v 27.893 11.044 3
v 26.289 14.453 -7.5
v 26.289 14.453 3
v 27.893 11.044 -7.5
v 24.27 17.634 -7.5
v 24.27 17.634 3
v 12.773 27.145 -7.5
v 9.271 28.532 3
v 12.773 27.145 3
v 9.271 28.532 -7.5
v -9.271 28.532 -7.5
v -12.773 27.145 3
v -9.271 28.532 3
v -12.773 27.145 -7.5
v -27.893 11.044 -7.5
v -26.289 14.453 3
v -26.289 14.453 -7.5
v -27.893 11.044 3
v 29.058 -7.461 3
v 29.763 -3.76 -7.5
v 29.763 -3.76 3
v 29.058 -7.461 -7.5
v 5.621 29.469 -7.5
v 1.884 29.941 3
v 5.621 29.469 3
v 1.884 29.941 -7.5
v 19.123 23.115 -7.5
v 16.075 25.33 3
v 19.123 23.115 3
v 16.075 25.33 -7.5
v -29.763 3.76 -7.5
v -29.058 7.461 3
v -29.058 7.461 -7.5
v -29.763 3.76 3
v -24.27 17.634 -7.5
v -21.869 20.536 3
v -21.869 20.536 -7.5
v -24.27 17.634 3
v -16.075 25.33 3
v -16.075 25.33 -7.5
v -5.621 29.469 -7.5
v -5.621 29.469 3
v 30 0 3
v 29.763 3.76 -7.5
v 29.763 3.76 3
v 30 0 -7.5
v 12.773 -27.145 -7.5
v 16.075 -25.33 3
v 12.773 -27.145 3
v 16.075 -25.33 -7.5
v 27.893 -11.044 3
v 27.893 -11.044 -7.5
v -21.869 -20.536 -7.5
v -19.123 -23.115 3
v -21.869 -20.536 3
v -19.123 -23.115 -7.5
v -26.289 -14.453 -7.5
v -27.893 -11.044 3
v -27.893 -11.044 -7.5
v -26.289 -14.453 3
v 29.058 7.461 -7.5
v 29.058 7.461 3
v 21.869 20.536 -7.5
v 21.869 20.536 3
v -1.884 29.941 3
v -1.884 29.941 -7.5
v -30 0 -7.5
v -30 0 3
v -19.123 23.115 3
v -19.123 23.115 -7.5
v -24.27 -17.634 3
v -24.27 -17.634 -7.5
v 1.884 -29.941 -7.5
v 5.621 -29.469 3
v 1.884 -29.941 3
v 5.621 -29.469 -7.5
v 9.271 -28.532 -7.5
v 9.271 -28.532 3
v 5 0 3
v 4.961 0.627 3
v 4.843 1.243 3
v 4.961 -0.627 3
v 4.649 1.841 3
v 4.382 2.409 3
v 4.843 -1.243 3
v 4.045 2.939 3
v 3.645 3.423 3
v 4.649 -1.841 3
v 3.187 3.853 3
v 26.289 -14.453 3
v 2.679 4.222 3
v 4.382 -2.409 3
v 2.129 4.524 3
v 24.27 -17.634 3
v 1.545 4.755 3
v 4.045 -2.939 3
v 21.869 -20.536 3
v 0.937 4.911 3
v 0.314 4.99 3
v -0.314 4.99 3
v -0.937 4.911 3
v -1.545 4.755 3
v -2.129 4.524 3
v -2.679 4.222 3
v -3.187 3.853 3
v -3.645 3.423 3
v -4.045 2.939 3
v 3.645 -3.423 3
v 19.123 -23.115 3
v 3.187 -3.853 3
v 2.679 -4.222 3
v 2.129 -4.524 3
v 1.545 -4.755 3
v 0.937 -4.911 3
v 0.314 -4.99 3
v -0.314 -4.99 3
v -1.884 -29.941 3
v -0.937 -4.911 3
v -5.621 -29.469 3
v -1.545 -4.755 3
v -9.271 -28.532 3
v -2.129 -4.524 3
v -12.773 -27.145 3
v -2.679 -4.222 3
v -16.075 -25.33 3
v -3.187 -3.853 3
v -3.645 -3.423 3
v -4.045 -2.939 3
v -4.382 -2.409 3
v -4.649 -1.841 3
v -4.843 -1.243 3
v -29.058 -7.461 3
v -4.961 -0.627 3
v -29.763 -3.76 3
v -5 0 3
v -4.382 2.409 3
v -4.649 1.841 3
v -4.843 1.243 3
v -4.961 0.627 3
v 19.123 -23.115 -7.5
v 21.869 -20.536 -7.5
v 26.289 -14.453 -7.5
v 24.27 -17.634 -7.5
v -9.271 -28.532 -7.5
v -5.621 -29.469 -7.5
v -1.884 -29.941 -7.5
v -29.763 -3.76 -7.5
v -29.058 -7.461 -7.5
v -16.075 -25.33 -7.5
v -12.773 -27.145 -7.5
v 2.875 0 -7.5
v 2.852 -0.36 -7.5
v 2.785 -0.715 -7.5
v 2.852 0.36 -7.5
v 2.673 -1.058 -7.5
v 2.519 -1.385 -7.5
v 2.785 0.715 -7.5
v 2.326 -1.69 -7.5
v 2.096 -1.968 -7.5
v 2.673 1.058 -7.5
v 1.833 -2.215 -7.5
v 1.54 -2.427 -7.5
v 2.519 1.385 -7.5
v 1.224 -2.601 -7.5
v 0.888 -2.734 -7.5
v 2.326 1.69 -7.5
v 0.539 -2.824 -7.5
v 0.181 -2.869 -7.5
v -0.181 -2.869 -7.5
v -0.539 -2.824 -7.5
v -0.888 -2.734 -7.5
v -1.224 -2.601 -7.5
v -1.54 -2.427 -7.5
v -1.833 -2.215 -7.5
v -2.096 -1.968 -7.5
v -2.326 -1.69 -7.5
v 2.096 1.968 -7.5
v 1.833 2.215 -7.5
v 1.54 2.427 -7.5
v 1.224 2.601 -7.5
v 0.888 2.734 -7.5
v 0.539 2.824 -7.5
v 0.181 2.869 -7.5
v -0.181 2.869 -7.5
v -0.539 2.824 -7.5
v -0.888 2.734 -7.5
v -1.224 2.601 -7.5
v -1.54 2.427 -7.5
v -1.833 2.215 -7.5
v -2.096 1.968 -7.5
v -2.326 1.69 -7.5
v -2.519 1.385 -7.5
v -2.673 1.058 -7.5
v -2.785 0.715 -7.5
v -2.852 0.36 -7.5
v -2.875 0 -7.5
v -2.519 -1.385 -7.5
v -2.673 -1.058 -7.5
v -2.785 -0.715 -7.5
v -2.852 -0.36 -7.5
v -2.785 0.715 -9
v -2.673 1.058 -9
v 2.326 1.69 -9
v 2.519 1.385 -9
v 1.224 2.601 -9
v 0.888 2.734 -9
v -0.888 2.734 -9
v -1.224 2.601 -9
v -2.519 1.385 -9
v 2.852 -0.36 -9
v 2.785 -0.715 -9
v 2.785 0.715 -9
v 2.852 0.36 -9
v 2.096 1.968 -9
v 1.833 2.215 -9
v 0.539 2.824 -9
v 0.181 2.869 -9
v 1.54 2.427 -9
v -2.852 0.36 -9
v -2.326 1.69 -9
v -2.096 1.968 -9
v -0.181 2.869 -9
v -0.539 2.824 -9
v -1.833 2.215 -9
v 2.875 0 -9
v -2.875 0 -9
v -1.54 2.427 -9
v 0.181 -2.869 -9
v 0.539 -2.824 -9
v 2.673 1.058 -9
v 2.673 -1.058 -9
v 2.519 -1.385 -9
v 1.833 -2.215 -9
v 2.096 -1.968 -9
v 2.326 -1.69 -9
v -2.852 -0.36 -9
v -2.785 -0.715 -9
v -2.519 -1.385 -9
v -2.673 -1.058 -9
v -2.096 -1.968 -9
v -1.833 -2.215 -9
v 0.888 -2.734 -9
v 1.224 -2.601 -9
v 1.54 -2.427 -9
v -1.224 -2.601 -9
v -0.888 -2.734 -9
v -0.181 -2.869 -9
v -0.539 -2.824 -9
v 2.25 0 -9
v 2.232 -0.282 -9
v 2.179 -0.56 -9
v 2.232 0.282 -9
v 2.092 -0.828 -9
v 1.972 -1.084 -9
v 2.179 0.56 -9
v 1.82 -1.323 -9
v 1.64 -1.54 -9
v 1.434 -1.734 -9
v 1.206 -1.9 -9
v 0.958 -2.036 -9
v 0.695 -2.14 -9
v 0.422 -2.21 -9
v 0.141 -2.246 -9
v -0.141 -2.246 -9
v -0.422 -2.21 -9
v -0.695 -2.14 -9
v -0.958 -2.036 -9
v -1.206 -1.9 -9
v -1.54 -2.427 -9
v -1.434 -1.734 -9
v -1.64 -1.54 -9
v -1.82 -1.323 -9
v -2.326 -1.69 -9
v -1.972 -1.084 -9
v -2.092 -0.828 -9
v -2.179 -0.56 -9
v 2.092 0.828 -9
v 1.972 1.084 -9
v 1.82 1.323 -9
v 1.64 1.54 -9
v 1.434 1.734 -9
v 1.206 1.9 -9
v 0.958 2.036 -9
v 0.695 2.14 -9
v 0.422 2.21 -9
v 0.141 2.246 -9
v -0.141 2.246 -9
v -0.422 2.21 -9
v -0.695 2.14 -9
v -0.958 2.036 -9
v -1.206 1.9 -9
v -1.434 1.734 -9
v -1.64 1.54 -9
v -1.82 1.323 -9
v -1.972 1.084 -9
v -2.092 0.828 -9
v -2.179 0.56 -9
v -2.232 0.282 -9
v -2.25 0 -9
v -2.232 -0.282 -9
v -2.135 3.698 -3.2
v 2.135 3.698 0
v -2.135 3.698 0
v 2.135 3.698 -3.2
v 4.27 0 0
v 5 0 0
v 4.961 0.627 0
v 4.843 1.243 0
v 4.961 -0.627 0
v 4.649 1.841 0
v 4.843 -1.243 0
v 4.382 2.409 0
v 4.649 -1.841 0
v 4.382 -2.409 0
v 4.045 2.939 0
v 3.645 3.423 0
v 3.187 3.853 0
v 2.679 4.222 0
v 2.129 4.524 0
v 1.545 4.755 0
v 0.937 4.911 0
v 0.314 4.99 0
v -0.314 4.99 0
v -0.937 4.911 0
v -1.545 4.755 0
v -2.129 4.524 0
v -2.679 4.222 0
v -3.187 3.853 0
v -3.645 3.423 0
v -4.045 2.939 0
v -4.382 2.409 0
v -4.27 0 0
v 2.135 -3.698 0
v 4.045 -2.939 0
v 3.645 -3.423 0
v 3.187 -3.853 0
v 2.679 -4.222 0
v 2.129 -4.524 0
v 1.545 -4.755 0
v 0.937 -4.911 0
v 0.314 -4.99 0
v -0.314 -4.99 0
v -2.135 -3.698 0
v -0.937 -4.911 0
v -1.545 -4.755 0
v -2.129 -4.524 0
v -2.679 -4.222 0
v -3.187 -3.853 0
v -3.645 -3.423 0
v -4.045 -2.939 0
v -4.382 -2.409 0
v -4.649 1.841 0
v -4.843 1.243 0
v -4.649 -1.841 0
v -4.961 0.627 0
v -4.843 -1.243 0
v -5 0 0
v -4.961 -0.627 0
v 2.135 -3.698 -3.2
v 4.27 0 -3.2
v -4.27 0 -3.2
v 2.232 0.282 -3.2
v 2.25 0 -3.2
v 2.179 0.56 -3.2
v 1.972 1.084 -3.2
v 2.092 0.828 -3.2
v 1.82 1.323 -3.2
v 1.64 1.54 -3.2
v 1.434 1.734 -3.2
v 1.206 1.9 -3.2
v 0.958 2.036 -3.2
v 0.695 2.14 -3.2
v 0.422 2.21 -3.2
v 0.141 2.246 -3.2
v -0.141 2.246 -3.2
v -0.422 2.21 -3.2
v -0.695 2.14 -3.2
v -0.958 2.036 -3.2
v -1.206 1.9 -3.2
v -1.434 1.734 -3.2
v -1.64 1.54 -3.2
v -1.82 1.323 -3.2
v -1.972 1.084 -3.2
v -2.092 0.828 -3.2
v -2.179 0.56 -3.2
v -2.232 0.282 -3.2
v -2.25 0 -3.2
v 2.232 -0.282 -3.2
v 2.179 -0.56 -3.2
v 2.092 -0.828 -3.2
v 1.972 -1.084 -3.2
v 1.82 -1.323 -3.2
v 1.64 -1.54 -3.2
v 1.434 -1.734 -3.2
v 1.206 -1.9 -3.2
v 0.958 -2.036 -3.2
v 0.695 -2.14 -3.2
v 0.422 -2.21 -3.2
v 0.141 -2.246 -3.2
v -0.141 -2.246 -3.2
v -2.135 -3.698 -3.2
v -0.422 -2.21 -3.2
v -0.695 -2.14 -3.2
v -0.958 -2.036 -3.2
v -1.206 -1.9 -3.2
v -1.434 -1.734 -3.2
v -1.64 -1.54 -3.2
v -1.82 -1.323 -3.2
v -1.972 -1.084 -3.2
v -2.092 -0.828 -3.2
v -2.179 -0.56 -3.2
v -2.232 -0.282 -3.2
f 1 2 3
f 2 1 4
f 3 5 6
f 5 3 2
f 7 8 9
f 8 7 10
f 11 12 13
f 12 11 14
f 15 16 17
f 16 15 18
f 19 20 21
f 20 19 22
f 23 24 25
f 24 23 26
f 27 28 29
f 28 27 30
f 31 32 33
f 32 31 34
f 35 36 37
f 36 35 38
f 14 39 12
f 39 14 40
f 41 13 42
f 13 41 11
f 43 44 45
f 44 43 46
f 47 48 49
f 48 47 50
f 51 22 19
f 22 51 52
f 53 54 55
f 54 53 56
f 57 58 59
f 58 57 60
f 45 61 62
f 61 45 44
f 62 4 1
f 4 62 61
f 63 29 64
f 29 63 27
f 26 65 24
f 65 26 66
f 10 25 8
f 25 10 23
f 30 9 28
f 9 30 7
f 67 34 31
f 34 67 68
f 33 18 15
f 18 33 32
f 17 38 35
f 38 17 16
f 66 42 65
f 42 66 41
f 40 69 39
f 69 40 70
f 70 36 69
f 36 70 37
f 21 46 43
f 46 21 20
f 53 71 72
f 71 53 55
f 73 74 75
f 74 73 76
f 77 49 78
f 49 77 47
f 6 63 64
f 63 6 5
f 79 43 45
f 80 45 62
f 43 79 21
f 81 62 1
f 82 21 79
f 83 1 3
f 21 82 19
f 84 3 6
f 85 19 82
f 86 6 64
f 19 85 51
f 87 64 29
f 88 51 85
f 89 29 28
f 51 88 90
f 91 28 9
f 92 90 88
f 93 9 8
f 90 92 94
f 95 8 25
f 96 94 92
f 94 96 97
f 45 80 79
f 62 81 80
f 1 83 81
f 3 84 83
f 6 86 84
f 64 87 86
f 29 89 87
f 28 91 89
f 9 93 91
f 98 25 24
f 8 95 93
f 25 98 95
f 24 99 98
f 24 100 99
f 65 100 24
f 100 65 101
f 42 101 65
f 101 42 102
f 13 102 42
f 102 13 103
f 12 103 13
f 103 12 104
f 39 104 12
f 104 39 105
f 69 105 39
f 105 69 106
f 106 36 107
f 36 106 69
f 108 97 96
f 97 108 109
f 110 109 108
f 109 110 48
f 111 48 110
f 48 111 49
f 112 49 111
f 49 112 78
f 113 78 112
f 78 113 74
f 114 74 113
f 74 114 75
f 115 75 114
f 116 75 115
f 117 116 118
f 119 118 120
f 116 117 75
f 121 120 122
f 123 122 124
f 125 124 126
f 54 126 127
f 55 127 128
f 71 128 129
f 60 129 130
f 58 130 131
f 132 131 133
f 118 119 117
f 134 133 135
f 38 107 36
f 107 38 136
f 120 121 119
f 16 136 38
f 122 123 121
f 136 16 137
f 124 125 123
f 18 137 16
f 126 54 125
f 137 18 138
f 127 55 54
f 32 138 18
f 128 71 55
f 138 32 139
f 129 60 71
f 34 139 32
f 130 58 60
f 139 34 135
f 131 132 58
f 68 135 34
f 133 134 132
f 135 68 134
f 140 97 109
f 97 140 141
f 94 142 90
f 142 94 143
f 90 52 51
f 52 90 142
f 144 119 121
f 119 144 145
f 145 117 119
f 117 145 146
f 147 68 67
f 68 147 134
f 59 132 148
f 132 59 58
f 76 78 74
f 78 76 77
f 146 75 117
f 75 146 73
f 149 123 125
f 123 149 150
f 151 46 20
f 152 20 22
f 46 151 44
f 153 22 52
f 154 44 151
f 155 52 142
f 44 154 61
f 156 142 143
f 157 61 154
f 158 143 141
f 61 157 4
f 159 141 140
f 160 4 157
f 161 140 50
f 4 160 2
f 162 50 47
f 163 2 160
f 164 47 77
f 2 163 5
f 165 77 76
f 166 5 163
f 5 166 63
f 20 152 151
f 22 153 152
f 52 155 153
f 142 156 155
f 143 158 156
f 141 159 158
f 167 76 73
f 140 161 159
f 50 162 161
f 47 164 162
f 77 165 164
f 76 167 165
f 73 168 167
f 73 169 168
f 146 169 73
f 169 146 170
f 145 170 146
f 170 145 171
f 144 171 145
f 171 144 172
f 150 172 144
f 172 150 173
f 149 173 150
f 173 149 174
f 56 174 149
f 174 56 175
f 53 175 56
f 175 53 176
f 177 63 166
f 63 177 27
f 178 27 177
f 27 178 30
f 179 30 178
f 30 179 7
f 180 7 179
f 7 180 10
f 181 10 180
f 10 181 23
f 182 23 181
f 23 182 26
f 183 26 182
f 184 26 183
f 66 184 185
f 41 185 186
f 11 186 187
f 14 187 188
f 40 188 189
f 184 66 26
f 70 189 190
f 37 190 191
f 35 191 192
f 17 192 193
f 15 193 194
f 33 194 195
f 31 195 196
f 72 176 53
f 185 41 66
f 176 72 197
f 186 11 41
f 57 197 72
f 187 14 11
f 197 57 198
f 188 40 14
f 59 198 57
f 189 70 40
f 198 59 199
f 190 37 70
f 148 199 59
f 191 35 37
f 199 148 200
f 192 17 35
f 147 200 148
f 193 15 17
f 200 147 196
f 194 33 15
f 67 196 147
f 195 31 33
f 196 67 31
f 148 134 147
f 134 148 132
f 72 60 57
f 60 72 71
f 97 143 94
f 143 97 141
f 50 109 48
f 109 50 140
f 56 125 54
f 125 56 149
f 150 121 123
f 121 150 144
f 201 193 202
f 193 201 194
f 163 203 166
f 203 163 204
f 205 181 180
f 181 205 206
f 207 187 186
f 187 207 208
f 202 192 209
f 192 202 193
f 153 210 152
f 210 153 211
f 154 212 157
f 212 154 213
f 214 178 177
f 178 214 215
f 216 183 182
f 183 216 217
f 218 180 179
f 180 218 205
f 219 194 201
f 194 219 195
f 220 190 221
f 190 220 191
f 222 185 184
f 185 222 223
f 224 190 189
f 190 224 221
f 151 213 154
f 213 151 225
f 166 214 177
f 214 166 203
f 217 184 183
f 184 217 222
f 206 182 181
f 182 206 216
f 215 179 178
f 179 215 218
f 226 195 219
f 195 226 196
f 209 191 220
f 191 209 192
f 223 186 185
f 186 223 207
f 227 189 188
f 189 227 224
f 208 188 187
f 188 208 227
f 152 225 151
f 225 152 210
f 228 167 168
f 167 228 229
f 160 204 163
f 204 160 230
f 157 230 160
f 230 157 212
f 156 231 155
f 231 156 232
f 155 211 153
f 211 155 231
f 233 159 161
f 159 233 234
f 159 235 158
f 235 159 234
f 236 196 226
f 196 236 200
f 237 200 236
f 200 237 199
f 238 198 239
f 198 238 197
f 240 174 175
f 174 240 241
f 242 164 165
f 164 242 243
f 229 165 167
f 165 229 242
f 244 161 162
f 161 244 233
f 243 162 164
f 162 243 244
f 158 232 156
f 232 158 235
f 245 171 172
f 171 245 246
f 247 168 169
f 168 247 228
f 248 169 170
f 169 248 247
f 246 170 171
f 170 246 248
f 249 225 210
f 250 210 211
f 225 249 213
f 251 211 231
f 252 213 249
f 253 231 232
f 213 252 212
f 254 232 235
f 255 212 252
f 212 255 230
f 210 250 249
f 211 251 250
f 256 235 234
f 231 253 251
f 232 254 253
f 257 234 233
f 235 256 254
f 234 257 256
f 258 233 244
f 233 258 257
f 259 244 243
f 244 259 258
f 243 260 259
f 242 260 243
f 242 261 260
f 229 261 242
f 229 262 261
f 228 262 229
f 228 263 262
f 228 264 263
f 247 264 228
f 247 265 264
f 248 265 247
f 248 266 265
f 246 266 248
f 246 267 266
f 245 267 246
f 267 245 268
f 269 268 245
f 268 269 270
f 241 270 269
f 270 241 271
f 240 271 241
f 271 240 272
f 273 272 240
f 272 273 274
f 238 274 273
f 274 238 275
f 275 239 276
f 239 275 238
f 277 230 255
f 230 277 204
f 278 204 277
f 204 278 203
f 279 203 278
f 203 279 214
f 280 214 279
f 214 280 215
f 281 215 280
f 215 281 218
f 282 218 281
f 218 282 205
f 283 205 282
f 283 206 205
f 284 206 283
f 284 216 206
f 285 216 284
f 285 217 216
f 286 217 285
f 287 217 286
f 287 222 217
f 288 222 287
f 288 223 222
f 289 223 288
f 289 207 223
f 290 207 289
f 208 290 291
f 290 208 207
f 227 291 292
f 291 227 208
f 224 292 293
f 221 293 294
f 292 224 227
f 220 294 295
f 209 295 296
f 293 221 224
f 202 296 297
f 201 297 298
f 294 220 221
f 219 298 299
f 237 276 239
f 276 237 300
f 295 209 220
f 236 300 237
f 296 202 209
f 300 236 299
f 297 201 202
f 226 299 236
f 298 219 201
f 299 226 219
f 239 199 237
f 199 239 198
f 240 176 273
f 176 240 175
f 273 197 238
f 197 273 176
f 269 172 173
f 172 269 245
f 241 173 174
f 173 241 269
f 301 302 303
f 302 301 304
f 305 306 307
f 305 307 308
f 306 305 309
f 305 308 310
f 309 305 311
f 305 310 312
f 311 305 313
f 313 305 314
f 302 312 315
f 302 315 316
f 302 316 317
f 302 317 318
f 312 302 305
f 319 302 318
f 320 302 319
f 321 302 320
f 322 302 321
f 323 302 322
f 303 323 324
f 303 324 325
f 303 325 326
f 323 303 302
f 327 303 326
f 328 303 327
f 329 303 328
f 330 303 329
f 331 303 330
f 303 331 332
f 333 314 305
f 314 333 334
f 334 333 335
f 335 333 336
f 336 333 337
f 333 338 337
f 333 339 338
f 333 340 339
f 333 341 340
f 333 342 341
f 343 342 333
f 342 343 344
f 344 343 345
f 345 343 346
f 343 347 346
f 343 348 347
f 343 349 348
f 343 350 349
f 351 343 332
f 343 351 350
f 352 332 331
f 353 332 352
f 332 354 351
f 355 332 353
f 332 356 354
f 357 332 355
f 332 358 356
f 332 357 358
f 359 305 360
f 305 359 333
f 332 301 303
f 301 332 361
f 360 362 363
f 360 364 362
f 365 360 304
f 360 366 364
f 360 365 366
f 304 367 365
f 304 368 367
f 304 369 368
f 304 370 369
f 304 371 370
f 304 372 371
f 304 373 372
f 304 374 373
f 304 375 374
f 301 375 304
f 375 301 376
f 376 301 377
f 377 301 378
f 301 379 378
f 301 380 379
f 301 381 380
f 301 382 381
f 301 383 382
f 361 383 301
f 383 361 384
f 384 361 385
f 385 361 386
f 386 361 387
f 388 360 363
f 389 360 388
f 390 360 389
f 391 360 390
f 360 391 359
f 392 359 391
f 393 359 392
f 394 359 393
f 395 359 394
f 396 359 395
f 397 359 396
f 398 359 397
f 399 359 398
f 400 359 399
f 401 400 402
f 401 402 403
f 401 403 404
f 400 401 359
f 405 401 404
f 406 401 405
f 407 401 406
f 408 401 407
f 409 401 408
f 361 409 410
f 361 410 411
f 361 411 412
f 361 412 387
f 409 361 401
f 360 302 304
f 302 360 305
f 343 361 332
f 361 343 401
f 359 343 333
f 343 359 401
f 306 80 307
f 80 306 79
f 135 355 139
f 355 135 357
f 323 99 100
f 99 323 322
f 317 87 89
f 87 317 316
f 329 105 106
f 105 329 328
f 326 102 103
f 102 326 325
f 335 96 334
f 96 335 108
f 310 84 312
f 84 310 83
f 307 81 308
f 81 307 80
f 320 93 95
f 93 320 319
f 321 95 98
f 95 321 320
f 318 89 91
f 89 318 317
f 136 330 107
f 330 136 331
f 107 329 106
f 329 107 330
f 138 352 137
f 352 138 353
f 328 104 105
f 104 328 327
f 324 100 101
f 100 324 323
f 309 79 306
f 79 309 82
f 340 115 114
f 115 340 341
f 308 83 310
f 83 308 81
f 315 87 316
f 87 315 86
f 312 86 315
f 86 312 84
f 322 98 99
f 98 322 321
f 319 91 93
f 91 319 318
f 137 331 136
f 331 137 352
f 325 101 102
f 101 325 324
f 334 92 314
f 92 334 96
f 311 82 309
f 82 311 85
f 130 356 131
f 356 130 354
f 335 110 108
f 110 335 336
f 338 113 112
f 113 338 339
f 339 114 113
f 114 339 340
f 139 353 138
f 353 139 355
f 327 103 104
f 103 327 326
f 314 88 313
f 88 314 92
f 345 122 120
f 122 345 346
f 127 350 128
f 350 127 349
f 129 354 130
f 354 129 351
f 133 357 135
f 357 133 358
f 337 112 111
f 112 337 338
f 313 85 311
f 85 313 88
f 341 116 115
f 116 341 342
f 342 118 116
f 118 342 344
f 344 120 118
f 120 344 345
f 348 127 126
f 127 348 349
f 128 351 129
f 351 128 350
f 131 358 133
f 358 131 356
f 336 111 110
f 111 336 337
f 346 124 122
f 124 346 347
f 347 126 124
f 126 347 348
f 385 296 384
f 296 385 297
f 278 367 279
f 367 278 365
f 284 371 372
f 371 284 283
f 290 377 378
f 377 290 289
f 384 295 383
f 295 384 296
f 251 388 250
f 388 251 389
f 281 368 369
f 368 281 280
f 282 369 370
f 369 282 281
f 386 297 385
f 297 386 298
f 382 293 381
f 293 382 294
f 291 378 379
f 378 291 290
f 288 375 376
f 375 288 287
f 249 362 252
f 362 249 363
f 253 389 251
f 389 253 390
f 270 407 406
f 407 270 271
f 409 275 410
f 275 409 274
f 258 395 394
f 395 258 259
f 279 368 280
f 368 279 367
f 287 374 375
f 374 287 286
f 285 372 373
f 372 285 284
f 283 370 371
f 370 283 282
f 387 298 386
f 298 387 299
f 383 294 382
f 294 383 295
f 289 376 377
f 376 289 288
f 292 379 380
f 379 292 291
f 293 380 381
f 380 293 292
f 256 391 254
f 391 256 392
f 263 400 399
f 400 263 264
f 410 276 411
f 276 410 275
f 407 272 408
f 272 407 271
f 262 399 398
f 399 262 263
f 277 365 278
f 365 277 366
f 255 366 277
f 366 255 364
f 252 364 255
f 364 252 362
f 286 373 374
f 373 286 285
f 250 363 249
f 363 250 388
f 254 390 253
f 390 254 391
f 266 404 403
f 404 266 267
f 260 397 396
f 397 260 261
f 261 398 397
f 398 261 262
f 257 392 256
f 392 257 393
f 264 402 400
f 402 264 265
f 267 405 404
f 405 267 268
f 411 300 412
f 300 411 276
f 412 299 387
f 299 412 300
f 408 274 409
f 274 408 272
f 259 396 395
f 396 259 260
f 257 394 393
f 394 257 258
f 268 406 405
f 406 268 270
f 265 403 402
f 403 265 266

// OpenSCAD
$fn = 50;


difference() {
	union() {
		translate(v = [0, 0, -7.5000000000]) {
			cylinder(h = 10.5000000000, r = 30.0000000000);
		}
		#translate(v = [0, 0, -9.0000000000]) {
			cylinder(h = 9, r = 2.8750000000);
		}
	}
	union() {
		translate(v = [0, 0, 0]) {
			rotate(a = [0, 0, 0]) {
				difference() {
					union() {
						translate(v = [0, 0, -3.2000000000]) {
							linear_extrude(height = 3.2000000000) {
								polygon(points = [[4.2698000000, 0.0000000000], [2.1349000000, 3.6977552691], [-2.1349000000, 3.6977552691], [-4.2698000000, 0.0000000000], [-2.1349000000, -3.6977552691], [2.1349000000, -3.6977552691]]);
							}
						}
					}
					union();
				}
			}
		}
		#cylinder(h = 3, r = 5.0000000000);
		#translate(v = [0, 0, -100.0000000000]) {
			cylinder(h = 200, r = 2.2500000000);
		}
	}
}
